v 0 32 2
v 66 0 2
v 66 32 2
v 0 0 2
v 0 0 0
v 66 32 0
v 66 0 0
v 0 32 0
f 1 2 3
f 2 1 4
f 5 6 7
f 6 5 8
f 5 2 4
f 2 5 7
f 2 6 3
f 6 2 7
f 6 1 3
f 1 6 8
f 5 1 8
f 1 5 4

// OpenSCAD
echo(version=version());

// Tray
thickness = 2;
width = 66;
height = 32;

cube([width, height, thickness]);
